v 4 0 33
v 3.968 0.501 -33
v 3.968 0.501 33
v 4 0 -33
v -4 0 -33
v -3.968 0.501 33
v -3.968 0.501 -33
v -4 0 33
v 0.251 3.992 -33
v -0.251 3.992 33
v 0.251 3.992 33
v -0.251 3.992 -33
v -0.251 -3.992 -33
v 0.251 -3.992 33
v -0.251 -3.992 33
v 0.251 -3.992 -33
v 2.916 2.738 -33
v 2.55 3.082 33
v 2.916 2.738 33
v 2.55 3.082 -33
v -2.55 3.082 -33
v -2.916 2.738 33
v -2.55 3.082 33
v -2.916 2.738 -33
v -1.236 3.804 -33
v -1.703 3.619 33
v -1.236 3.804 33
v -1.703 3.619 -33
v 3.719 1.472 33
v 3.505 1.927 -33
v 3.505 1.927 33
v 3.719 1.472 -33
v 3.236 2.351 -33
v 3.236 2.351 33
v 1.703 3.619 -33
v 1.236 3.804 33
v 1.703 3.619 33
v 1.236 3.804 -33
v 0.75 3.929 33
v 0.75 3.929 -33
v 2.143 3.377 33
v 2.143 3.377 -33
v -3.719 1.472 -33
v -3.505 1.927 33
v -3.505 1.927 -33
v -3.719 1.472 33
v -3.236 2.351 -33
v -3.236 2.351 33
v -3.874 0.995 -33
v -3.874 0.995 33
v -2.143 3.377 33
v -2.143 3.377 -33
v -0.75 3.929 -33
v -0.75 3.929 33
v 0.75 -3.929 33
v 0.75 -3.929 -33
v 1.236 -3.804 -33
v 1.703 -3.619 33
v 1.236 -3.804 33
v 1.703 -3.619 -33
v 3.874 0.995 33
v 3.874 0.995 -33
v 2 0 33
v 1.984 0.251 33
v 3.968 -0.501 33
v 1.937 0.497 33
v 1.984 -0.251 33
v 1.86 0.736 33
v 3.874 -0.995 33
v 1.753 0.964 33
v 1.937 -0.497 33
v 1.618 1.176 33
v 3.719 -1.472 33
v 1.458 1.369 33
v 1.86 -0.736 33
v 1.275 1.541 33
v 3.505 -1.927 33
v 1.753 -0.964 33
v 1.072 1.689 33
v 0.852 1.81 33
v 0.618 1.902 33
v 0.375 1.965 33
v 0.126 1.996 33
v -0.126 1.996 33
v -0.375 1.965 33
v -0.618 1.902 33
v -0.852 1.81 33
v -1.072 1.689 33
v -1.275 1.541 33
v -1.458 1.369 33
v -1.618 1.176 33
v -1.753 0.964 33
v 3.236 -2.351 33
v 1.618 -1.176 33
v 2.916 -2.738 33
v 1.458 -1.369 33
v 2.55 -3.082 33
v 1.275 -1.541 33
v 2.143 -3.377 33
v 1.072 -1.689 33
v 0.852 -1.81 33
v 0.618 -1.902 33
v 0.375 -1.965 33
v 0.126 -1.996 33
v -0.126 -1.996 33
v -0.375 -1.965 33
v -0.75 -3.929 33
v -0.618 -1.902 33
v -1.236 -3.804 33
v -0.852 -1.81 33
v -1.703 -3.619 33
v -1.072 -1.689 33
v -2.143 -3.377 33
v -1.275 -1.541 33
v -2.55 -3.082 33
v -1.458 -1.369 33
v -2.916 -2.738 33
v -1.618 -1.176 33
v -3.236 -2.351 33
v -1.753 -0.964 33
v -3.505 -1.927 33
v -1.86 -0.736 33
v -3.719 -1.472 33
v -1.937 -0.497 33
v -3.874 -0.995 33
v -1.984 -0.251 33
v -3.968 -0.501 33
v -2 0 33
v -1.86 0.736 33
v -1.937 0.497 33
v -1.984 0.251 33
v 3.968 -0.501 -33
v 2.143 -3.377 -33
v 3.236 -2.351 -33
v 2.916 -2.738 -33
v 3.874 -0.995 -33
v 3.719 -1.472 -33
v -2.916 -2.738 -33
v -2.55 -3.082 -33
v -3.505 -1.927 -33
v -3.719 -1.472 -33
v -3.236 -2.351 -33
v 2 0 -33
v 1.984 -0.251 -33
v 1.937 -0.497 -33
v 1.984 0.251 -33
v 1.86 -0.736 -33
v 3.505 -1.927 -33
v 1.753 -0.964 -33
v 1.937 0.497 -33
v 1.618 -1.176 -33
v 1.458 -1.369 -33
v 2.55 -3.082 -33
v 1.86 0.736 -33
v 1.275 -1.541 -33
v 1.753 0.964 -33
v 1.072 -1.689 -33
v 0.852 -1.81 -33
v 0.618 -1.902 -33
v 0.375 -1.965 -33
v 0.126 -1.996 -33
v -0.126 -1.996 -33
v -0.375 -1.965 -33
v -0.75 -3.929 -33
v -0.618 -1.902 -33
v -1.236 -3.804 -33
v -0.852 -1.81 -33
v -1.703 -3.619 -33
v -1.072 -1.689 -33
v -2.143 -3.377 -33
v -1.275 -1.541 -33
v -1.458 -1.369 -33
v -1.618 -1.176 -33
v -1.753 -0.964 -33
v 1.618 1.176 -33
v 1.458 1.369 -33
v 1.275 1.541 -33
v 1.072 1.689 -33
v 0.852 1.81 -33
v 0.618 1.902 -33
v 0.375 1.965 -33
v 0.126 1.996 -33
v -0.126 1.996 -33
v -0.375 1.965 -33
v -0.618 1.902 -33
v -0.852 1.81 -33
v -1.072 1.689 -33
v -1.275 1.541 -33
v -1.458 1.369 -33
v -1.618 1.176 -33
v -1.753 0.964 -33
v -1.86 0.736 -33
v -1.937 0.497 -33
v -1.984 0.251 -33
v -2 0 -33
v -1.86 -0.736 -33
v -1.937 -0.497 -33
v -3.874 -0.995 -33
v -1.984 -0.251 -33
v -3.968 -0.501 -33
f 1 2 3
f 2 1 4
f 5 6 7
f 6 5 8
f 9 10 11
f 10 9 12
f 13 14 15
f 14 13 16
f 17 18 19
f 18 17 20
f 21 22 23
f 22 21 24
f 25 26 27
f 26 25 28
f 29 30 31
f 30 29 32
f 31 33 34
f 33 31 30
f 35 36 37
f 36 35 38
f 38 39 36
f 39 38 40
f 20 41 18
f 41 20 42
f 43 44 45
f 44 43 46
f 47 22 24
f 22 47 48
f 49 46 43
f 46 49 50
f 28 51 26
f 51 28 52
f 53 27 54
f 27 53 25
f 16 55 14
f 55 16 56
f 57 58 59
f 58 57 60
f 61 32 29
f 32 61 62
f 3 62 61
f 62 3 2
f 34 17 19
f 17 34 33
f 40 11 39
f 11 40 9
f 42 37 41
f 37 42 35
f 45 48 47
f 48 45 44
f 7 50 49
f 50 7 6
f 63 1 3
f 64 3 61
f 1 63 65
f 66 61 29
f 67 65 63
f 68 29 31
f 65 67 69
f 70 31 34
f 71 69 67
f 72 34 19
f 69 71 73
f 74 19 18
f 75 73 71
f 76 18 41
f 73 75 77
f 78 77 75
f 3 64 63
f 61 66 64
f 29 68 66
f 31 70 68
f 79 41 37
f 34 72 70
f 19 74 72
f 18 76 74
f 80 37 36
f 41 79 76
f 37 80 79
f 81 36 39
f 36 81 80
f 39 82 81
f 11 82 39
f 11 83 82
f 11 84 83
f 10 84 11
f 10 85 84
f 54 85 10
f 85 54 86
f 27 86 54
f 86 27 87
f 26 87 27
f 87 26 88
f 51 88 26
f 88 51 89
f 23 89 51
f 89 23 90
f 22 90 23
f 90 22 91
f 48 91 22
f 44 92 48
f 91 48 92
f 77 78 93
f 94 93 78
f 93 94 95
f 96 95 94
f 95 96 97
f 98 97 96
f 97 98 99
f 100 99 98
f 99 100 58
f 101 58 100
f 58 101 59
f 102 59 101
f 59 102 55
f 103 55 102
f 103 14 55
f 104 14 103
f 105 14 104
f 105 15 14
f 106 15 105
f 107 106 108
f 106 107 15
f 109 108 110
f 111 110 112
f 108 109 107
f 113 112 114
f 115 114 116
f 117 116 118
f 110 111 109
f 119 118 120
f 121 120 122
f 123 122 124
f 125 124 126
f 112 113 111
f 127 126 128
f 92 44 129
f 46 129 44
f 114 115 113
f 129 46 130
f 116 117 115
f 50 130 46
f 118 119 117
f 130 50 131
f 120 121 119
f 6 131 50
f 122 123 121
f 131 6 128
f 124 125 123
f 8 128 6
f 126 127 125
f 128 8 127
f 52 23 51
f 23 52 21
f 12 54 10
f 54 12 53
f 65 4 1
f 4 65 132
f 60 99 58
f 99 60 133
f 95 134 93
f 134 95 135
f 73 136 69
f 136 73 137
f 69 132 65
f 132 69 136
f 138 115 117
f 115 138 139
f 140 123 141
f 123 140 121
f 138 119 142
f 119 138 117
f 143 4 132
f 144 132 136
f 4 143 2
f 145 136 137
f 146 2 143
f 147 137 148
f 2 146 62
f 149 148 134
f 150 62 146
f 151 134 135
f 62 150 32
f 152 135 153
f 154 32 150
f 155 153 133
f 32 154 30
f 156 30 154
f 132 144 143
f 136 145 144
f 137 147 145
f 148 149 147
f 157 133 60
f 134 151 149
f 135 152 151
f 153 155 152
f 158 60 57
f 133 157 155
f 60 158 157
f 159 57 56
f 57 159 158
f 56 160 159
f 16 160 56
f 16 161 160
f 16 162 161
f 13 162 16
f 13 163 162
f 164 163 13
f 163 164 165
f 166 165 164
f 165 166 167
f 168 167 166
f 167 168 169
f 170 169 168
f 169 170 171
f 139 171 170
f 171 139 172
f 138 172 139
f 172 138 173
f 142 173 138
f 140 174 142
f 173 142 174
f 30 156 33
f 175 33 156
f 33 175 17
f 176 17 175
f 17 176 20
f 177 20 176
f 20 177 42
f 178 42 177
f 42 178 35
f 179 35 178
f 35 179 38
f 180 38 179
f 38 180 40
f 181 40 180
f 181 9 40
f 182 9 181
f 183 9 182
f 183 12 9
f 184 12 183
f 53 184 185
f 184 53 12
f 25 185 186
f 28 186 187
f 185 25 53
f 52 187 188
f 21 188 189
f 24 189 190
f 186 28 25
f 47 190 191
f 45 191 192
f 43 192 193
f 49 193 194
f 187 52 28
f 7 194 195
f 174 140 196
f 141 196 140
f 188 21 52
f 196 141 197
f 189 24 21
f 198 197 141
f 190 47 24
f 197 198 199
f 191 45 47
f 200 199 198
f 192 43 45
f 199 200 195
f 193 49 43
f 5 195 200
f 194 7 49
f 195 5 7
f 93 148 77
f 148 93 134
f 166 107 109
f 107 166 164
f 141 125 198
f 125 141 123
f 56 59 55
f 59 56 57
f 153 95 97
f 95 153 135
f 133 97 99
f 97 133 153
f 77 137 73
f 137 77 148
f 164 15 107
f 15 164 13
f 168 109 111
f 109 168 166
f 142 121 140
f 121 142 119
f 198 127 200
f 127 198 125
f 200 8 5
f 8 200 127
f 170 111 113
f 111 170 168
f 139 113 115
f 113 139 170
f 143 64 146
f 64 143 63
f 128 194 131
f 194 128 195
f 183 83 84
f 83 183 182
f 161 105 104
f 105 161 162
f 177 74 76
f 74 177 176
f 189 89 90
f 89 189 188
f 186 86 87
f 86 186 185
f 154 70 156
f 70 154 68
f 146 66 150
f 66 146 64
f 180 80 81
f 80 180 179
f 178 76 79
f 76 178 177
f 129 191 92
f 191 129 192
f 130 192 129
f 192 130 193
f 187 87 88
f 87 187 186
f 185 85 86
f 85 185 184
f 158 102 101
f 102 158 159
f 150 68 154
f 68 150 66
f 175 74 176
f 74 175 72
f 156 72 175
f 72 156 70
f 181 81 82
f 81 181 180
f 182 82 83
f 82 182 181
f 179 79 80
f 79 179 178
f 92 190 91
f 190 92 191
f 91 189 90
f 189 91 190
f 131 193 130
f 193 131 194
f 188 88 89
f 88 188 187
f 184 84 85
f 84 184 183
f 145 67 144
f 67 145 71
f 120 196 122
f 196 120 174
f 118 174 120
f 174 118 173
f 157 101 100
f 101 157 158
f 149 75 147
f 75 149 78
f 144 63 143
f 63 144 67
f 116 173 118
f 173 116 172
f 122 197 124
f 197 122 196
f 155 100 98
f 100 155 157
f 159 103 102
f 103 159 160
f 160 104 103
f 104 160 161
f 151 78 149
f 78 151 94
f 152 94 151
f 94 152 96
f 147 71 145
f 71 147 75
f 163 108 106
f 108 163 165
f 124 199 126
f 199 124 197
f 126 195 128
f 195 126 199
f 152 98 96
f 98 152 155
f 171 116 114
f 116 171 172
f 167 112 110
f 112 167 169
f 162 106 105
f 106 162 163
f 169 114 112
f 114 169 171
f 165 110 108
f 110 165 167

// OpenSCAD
$fn = 50;


difference() {
	union() {
		translate(v = [0, 0, -33.0000000000]) {
			cylinder(h = 66, r = 4.0000000000);
		}
	}
	union() {
		translate(v = [0, 0, -100.0000000000]) {
			cylinder(h = 200, r = 2);
		}
	}
}
